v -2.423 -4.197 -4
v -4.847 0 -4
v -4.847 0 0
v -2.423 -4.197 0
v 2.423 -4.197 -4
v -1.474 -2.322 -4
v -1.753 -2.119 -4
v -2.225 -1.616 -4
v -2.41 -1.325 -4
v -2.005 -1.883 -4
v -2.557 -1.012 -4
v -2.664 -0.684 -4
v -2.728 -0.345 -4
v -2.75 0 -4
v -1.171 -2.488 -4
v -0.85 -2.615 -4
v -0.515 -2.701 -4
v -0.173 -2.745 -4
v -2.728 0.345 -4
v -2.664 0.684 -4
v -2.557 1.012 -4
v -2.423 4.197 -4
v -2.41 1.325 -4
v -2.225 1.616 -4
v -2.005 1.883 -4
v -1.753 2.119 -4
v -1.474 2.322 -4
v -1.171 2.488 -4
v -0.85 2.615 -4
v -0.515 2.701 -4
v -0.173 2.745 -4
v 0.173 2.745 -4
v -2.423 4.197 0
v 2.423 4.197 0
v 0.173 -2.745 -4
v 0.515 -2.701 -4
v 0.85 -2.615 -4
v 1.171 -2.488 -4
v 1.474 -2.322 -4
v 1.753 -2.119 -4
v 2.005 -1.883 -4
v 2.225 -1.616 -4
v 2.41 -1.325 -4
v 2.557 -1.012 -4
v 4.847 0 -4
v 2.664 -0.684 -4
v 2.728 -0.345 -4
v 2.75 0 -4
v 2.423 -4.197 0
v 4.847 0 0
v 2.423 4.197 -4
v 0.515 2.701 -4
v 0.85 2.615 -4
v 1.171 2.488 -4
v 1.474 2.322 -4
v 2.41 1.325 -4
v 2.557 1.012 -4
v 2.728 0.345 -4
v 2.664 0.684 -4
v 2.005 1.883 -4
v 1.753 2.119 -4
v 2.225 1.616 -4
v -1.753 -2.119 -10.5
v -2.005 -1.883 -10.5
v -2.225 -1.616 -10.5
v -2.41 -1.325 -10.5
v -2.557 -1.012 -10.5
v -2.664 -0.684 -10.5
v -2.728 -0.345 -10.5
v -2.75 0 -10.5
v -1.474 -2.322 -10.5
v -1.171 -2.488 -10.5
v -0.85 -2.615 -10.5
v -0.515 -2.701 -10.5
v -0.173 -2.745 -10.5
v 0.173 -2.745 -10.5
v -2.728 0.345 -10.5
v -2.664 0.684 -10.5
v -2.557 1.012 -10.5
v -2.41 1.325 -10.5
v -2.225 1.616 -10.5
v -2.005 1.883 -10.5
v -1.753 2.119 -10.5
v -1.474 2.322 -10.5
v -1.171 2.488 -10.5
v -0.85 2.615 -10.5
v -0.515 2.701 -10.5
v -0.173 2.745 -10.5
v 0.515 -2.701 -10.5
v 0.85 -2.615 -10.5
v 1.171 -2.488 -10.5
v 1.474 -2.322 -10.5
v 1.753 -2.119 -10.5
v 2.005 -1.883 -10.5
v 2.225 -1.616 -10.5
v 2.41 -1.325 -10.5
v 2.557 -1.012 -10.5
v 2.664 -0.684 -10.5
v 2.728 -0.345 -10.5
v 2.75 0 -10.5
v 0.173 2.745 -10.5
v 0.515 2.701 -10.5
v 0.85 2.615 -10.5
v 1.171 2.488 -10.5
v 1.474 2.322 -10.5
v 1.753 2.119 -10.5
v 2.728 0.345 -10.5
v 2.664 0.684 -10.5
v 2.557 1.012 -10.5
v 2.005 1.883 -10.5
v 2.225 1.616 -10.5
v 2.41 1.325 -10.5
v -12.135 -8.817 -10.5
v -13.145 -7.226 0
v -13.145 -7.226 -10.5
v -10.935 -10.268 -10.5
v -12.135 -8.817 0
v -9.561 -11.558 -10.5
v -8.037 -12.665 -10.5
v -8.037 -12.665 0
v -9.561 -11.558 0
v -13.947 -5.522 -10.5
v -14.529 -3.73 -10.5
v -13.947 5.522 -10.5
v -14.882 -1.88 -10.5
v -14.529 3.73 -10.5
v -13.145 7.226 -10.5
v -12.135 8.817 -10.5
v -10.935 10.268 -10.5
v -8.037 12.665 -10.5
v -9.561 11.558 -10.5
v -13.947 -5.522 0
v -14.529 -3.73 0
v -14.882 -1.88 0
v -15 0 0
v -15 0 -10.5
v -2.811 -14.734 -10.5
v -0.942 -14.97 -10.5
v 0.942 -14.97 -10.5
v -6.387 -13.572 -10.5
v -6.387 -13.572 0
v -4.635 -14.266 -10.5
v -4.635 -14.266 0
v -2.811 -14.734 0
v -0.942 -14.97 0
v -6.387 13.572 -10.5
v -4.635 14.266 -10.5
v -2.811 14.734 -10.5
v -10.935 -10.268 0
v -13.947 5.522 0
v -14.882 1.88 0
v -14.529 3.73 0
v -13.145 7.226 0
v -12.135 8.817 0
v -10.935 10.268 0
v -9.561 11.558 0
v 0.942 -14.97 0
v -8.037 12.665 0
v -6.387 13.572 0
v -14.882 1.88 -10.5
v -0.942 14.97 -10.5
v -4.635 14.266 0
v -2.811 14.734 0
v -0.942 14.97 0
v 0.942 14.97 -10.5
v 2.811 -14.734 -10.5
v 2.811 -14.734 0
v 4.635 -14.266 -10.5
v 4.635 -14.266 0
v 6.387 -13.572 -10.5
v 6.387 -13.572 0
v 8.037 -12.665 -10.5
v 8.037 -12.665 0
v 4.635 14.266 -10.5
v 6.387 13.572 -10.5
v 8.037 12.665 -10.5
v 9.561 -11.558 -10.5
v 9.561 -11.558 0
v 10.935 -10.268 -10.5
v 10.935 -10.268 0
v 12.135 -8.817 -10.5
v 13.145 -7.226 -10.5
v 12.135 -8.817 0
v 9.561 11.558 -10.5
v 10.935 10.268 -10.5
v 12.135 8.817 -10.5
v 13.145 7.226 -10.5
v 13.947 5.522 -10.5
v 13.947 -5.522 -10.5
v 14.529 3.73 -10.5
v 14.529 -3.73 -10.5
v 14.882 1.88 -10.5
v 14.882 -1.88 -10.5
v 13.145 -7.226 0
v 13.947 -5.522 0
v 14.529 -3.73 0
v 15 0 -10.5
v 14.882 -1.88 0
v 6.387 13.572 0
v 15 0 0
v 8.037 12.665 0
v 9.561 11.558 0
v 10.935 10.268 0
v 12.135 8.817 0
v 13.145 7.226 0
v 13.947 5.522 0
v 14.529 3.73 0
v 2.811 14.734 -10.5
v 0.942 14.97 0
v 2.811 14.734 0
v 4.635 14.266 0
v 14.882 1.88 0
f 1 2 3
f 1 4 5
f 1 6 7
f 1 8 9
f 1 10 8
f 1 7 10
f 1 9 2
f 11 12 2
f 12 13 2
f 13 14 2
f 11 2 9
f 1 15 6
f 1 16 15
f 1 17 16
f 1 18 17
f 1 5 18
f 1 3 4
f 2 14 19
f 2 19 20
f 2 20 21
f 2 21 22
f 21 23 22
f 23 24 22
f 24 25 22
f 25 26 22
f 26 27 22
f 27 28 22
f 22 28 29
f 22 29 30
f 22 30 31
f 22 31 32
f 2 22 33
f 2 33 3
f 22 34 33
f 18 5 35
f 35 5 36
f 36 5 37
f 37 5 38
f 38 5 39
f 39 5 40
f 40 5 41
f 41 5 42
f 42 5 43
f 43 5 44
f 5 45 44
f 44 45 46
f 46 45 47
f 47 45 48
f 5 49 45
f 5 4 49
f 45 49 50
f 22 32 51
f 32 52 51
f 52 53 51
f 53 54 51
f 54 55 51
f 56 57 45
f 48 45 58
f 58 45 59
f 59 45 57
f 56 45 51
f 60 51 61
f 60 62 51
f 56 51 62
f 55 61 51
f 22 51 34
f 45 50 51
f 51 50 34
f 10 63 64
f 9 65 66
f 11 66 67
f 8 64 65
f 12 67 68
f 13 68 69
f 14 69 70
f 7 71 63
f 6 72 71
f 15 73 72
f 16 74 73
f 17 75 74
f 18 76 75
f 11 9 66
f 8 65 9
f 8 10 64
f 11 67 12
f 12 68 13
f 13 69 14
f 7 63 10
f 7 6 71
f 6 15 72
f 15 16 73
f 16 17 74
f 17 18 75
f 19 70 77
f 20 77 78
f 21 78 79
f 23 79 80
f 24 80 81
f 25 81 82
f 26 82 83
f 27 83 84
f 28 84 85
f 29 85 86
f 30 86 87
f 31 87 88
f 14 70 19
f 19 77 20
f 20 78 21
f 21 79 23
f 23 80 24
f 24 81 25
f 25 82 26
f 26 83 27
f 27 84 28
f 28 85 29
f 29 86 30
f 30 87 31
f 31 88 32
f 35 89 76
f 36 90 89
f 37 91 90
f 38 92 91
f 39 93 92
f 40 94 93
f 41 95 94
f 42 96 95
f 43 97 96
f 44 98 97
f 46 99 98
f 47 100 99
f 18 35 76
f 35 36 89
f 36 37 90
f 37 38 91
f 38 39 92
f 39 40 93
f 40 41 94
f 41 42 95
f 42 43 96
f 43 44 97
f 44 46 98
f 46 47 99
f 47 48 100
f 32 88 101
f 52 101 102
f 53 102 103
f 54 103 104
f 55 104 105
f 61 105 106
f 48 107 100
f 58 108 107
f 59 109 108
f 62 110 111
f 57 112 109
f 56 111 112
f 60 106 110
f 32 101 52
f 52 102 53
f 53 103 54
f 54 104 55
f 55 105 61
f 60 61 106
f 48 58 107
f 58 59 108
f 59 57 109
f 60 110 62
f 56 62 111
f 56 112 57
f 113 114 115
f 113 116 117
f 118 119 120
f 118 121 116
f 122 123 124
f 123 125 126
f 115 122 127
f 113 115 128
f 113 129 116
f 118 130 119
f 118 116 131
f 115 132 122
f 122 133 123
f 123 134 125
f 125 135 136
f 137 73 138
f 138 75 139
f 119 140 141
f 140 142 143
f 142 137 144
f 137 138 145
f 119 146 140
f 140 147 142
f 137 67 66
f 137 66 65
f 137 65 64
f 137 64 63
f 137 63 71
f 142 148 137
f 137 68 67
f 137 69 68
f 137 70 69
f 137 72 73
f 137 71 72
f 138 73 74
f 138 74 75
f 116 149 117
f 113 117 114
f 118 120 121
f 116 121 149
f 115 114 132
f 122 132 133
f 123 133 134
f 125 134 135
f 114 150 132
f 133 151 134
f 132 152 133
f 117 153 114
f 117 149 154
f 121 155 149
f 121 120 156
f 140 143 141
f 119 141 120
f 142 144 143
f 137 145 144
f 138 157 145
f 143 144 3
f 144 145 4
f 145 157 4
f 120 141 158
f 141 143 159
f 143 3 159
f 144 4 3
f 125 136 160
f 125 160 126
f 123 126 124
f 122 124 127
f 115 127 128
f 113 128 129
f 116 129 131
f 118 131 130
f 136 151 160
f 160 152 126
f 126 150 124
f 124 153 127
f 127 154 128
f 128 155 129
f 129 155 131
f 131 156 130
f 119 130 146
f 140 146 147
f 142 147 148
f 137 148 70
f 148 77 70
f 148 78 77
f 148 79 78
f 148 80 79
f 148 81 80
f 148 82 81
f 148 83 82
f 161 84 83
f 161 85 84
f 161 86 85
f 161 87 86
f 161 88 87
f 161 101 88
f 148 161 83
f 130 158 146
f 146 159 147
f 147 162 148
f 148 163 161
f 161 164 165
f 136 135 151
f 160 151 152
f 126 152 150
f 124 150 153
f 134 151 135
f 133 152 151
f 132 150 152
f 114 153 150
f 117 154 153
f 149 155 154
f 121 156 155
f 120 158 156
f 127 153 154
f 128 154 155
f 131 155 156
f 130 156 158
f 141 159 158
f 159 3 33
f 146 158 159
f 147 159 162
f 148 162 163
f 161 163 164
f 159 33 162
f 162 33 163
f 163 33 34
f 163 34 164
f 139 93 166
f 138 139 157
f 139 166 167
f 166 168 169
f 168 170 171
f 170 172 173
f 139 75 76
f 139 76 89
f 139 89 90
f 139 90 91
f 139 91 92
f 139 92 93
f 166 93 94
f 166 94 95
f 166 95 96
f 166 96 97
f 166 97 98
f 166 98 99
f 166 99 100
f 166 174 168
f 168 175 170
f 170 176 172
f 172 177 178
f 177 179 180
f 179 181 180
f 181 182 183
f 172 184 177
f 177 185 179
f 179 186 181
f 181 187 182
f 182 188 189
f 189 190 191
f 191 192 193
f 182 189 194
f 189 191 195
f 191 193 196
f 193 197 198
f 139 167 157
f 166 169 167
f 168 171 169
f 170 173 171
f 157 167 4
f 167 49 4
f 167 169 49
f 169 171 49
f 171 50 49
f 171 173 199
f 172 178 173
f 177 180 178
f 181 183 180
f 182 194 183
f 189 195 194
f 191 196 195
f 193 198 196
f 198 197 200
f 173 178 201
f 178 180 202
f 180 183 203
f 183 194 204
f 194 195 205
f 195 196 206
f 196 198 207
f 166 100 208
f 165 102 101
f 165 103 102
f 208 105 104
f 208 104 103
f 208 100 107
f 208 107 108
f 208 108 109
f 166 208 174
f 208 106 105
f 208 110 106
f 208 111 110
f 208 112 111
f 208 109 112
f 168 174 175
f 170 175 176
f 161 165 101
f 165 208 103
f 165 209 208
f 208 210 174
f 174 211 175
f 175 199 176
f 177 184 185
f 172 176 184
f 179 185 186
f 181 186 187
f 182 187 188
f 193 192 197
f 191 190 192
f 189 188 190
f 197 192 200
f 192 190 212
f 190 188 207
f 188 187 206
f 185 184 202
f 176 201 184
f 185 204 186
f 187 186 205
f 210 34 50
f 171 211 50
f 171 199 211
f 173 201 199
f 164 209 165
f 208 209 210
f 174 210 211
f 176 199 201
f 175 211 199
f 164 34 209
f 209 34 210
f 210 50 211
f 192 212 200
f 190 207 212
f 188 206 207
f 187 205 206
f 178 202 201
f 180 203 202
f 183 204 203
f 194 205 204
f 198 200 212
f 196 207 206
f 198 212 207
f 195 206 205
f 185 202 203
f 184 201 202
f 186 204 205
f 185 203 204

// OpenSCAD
$fn = 50;


difference() {
	union() {
		translate(v = [0, 0, -10.5000000000]) {
			cylinder(h = 10.5000000000, r = 15.0000000000);
		}
	}
	union() {
		translate(v = [0, 0, 0]) {
			rotate(a = [0, 0, 0]) {
				difference() {
					union() {
						translate(v = [0, 0, -4]) {
							linear_extrude(height = 4) {
								polygon(points = [[4.8468000000, 0.0000000000], [2.4234000000, 4.1974519271], [-2.4234000000, 4.1974519271], [-4.8468000000, 0.0000000000], [-2.4234000000, -4.1974519271], [2.4234000000, -4.1974519271]]);
							}
						}
					}
					union();
				}
			}
		}
		#translate(v = [0, 0, -100.0000000000]) {
			cylinder(h = 200, r = 2.7500000000);
		}
	}
}
